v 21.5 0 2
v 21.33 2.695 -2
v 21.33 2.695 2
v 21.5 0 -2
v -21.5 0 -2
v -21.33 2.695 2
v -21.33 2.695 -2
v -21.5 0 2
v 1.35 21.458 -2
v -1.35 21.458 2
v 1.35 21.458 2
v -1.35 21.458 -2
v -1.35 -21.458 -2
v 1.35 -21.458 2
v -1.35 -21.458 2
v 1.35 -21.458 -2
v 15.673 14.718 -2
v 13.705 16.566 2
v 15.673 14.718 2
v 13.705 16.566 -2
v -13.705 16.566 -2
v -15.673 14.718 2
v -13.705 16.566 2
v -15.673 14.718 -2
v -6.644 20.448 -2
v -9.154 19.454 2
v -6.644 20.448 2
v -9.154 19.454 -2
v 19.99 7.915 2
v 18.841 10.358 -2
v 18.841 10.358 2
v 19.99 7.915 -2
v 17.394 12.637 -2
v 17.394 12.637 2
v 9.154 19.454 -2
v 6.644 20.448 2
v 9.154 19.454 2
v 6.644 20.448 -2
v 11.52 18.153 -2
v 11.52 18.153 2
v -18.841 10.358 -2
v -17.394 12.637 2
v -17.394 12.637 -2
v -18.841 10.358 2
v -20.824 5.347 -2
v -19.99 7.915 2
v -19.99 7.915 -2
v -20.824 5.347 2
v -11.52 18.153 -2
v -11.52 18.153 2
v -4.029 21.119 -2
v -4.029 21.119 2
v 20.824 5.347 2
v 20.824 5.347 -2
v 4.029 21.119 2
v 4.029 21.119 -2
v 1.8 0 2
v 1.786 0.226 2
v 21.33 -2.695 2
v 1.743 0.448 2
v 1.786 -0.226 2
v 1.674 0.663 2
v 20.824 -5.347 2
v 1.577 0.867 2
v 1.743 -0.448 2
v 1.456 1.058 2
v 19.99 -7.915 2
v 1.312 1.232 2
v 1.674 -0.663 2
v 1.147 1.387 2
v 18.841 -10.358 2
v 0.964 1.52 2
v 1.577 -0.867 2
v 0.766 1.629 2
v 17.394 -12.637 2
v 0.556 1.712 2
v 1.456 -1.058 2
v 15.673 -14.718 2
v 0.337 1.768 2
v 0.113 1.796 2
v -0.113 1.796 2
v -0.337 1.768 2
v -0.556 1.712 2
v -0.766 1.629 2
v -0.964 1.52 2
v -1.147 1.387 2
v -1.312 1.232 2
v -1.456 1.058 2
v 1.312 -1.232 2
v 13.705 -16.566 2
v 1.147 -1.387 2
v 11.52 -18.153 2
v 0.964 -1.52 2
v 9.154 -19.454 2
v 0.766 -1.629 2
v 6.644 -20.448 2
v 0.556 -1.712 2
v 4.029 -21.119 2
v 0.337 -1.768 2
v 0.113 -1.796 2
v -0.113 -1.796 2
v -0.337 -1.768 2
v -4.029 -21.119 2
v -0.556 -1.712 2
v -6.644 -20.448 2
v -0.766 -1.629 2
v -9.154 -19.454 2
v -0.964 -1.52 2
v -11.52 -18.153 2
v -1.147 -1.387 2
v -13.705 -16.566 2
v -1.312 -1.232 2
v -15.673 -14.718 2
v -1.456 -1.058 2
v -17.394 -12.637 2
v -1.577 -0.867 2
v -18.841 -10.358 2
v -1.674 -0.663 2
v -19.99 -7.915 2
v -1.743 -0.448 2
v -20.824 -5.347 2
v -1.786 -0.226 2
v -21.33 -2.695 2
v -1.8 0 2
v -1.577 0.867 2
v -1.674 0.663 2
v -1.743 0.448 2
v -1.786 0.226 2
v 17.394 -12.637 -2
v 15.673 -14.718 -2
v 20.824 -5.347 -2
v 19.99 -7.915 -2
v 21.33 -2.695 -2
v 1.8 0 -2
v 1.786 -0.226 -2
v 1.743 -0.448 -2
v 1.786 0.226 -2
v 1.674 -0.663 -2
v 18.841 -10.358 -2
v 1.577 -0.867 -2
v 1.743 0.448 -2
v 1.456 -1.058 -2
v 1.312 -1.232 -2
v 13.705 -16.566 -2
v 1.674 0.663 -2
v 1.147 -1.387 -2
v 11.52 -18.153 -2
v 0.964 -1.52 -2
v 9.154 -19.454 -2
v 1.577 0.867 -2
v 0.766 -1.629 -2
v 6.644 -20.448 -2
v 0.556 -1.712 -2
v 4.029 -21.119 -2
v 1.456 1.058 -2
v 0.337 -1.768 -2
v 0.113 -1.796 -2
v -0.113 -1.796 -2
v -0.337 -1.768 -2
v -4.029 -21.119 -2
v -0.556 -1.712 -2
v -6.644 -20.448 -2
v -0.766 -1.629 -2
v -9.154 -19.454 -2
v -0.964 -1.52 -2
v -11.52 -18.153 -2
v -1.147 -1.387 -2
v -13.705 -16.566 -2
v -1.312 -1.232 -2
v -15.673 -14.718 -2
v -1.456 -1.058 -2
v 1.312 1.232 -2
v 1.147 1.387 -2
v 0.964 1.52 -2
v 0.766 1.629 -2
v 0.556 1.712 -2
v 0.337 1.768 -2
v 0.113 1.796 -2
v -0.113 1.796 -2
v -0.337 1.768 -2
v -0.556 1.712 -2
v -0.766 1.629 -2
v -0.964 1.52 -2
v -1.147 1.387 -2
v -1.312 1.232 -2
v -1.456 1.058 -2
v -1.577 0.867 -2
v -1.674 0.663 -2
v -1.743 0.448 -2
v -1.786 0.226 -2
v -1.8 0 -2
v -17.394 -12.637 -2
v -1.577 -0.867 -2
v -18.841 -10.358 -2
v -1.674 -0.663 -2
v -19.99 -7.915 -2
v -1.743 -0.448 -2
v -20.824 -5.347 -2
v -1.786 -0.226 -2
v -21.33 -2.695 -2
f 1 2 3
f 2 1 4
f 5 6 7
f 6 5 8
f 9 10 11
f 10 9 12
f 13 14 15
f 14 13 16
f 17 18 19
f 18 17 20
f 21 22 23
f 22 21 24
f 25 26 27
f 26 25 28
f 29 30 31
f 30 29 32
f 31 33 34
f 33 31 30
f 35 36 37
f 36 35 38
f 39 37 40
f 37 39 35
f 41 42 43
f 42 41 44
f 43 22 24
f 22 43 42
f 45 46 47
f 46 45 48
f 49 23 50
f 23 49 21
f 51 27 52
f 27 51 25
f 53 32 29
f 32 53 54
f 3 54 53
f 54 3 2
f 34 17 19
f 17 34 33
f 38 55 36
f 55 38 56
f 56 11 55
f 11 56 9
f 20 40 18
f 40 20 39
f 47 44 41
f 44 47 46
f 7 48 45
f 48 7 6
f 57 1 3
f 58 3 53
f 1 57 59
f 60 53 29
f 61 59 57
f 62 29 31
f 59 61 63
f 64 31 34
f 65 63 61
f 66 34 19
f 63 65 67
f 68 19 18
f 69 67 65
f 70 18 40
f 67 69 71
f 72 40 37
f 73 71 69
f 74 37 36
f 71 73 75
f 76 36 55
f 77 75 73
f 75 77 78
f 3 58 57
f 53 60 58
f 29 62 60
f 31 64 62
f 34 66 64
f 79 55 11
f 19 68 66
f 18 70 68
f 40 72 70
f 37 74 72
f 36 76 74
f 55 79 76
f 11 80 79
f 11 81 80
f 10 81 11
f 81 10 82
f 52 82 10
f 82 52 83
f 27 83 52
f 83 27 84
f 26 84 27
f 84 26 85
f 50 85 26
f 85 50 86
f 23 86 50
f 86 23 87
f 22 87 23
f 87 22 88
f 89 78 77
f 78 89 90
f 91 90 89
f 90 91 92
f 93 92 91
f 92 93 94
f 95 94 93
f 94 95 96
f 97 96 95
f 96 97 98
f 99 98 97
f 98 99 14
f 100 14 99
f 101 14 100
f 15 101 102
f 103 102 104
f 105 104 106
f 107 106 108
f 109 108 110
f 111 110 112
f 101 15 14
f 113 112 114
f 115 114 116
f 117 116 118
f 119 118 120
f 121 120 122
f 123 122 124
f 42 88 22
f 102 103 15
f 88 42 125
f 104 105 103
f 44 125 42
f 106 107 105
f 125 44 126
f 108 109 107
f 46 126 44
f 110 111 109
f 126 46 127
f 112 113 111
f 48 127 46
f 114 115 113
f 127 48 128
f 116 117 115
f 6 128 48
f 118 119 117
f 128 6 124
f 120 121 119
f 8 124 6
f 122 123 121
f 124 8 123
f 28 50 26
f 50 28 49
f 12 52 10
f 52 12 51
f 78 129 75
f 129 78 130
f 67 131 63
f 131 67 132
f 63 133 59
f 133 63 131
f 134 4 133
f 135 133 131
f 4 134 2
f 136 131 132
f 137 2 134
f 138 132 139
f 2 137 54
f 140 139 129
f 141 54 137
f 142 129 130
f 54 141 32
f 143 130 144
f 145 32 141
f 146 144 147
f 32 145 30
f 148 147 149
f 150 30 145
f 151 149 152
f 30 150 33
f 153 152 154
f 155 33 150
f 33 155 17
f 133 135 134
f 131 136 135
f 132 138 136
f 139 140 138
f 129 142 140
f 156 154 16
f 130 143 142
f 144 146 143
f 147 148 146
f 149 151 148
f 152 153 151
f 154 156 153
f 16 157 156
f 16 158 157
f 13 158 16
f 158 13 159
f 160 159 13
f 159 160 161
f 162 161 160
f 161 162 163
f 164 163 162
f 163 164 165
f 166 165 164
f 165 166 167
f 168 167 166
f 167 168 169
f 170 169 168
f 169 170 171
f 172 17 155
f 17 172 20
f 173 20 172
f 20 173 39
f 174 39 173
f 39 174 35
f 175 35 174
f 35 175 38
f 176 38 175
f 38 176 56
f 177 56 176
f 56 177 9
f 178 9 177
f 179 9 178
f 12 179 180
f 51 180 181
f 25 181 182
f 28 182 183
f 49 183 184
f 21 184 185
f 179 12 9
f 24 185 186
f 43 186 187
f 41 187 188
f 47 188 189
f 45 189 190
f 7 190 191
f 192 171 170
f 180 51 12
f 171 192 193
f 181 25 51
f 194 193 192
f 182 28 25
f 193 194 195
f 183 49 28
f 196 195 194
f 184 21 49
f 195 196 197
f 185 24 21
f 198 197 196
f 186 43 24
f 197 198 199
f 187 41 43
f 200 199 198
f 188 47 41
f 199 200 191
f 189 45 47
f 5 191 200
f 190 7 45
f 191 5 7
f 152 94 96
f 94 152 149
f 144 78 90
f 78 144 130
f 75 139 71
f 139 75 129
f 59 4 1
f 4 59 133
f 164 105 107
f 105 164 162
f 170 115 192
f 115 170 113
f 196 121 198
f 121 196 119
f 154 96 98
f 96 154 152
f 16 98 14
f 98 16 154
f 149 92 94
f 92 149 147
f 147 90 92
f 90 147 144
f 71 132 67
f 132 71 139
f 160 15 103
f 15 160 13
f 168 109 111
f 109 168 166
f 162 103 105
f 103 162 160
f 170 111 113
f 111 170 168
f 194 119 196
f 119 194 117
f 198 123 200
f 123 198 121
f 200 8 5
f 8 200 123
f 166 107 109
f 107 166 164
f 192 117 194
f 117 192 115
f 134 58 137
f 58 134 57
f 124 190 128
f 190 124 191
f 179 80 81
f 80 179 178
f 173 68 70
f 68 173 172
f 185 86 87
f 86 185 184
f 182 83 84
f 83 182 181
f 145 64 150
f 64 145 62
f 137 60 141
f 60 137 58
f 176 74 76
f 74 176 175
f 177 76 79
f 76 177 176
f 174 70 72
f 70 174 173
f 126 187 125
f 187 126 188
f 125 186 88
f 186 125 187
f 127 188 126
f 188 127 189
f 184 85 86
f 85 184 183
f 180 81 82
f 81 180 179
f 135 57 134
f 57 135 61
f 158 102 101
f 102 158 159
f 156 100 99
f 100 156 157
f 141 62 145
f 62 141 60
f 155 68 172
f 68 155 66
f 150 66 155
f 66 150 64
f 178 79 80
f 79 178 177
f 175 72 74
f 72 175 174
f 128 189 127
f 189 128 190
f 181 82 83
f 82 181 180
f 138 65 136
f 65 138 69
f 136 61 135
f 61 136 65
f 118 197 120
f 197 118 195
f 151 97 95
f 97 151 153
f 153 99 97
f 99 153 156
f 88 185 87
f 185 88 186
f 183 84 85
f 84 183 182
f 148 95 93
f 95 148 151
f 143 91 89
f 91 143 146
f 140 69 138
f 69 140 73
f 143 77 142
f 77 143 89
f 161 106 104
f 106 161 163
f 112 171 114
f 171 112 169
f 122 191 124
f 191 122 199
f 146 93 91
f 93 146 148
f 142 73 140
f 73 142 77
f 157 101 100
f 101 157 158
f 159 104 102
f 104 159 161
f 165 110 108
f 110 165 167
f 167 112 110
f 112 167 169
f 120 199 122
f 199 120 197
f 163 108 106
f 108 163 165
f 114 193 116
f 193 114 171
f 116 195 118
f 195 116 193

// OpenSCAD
$fn = 50;


difference() {
	union() {
		translate(v = [0, 0, -2.0000000000]) {
			cylinder(h = 4, r = 21.5000000000);
		}
	}
	union() {
		translate(v = [0, 0, -100.0000000000]) {
			cylinder(h = 200, r = 1.8000000000);
		}
	}
}
